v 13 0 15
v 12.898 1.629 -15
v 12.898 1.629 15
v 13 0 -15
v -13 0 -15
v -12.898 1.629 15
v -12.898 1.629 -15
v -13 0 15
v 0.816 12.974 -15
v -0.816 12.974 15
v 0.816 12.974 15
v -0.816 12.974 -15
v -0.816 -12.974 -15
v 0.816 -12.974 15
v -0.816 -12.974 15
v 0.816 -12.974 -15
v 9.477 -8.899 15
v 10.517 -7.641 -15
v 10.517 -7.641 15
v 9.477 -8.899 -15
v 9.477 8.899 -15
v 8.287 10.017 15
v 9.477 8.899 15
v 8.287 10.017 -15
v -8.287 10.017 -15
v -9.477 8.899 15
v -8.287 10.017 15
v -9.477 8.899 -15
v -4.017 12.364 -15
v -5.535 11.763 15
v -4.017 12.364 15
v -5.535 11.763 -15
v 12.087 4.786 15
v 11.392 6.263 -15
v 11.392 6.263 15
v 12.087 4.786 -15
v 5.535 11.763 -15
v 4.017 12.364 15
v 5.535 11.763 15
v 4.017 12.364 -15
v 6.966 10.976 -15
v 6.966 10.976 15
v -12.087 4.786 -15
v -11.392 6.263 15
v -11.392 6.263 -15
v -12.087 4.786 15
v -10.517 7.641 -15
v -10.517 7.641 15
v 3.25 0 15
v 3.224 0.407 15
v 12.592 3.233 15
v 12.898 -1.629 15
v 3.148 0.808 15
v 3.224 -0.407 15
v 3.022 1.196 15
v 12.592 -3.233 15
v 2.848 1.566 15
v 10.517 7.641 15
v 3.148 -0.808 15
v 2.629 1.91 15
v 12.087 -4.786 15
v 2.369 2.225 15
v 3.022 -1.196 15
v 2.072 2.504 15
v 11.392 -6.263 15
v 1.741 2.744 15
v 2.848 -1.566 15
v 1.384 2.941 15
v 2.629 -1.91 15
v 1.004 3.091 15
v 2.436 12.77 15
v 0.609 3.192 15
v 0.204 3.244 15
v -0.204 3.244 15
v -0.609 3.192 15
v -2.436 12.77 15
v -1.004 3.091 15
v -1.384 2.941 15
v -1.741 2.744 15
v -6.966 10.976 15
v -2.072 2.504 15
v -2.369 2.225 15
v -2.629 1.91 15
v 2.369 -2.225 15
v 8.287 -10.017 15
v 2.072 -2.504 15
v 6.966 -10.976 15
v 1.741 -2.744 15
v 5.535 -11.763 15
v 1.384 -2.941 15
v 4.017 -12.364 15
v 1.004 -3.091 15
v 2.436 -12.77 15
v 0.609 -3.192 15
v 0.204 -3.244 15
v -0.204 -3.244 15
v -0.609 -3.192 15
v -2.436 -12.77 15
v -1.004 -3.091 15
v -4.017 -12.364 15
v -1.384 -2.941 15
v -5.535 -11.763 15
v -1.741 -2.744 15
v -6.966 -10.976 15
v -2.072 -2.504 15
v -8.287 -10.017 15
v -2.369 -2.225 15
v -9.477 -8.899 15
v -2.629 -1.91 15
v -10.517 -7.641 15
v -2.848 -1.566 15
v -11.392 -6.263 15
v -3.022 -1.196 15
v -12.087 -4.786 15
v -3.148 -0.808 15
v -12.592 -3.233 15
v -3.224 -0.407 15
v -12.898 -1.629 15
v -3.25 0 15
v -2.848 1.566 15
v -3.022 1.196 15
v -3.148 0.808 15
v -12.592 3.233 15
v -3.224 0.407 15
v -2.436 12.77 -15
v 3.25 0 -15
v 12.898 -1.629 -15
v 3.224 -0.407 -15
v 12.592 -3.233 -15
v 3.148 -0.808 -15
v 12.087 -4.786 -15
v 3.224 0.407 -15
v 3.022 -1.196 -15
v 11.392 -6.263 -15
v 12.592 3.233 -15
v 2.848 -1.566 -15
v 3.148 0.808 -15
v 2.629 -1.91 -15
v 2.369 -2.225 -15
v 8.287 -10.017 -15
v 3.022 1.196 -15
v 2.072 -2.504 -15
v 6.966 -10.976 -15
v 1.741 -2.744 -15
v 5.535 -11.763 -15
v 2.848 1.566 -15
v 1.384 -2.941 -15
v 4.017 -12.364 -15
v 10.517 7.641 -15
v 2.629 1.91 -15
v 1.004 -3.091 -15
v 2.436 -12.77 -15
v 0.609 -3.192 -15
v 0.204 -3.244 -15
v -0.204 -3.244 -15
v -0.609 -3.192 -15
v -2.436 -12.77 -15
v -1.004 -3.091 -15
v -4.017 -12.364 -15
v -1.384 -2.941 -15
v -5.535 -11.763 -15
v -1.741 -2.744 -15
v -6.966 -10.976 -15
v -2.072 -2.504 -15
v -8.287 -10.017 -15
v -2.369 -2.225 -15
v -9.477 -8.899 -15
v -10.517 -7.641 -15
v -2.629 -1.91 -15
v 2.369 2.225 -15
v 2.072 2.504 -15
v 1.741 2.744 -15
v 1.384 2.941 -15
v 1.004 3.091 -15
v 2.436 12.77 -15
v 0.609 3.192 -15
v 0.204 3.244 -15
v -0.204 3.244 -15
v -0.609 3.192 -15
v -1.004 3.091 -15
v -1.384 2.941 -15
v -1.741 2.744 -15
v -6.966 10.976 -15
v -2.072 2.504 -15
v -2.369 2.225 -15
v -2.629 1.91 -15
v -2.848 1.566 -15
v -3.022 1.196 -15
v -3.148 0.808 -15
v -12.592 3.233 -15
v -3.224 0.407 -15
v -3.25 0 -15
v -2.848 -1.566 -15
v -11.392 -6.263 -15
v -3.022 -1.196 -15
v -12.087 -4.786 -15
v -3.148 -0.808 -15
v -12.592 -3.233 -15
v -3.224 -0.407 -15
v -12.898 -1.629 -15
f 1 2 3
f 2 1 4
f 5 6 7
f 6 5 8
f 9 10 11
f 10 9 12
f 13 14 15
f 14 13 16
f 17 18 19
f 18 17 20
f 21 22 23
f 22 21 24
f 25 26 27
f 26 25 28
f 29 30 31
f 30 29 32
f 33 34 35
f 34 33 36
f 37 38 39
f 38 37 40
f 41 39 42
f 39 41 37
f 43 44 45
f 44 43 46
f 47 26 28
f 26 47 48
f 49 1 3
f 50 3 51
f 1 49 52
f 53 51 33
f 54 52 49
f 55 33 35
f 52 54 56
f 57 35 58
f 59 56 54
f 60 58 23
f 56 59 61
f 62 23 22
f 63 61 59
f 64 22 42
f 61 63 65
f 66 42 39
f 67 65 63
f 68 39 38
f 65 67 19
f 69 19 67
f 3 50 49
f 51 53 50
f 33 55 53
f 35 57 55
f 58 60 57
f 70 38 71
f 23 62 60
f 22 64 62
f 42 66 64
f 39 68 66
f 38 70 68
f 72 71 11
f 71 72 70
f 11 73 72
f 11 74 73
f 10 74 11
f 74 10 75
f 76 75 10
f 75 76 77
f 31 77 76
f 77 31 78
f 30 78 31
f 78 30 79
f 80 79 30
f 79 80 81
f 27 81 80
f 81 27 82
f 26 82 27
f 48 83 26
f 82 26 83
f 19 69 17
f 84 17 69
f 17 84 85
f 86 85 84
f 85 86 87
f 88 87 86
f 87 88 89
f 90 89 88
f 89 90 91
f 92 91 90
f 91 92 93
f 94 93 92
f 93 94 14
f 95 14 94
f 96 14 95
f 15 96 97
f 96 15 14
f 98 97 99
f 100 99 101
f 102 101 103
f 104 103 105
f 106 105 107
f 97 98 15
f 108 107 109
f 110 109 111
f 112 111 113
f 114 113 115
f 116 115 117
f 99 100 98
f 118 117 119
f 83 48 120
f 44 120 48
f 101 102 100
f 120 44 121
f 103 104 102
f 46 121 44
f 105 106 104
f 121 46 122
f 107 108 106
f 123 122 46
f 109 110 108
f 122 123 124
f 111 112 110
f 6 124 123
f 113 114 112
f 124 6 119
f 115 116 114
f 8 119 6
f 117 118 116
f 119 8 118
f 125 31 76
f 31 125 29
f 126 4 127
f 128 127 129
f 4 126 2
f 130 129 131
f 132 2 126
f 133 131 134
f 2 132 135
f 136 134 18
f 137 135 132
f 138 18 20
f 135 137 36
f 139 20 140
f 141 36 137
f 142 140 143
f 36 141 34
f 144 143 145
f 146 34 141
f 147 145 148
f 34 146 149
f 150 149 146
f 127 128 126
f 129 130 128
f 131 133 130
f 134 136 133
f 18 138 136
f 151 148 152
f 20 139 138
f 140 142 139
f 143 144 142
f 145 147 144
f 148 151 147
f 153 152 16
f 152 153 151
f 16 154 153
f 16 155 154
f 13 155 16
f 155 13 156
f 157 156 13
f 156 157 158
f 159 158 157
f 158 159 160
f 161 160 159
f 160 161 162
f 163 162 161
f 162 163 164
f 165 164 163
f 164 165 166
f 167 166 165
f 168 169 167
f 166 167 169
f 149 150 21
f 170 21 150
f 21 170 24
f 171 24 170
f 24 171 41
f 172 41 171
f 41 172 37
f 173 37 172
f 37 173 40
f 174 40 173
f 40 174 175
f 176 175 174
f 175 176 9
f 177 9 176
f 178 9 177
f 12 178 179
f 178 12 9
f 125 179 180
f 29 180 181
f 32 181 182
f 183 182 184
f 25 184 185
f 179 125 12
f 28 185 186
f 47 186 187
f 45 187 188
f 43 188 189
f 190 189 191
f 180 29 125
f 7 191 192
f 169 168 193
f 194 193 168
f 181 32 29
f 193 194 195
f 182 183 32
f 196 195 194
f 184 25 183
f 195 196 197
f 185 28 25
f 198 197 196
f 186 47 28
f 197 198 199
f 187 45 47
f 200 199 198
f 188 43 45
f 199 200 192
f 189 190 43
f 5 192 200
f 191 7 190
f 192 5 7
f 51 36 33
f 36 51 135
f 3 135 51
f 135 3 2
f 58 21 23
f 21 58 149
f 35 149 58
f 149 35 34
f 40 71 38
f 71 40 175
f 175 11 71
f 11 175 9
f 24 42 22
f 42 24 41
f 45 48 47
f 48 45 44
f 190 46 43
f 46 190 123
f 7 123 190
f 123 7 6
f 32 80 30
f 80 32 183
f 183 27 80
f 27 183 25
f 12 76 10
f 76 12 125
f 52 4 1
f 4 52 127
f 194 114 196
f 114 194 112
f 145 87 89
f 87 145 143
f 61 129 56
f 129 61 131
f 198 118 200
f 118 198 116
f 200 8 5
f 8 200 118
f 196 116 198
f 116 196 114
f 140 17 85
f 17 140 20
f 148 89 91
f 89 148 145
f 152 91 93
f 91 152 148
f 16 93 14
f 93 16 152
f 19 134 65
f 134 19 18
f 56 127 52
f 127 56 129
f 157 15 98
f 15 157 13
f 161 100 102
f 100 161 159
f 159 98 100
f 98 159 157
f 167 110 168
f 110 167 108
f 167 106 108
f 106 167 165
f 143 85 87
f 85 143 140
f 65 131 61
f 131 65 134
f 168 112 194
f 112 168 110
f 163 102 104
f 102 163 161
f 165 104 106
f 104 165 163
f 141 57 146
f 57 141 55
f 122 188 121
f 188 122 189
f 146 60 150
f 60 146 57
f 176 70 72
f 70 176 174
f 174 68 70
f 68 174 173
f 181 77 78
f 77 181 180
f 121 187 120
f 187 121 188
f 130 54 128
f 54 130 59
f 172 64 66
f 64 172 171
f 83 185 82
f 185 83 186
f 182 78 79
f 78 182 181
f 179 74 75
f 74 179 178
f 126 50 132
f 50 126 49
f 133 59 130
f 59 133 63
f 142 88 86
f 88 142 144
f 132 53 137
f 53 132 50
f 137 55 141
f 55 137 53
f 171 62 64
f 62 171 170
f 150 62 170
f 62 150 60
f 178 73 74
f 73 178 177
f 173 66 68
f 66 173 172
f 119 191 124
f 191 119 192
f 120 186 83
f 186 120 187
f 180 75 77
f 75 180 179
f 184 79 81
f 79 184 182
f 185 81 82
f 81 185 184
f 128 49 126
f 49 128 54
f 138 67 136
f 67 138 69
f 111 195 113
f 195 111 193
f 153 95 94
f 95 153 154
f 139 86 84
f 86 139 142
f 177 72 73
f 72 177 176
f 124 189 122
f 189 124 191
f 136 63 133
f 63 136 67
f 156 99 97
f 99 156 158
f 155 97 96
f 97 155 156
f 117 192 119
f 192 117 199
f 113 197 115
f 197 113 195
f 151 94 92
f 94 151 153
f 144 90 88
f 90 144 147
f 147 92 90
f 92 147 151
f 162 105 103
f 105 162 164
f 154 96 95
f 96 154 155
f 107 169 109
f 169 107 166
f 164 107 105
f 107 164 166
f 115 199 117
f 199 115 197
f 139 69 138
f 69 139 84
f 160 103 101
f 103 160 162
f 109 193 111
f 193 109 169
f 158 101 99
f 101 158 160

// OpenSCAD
$fn = 50;


difference() {
	union() {
		translate(v = [0, 0, -15.0000000000]) {
			cylinder(h = 30, r = 13.0000000000);
		}
	}
	union() {
		translate(v = [0, 0, -100.0000000000]) {
			cylinder(h = 200, r = 3.2500000000);
		}
	}
}
